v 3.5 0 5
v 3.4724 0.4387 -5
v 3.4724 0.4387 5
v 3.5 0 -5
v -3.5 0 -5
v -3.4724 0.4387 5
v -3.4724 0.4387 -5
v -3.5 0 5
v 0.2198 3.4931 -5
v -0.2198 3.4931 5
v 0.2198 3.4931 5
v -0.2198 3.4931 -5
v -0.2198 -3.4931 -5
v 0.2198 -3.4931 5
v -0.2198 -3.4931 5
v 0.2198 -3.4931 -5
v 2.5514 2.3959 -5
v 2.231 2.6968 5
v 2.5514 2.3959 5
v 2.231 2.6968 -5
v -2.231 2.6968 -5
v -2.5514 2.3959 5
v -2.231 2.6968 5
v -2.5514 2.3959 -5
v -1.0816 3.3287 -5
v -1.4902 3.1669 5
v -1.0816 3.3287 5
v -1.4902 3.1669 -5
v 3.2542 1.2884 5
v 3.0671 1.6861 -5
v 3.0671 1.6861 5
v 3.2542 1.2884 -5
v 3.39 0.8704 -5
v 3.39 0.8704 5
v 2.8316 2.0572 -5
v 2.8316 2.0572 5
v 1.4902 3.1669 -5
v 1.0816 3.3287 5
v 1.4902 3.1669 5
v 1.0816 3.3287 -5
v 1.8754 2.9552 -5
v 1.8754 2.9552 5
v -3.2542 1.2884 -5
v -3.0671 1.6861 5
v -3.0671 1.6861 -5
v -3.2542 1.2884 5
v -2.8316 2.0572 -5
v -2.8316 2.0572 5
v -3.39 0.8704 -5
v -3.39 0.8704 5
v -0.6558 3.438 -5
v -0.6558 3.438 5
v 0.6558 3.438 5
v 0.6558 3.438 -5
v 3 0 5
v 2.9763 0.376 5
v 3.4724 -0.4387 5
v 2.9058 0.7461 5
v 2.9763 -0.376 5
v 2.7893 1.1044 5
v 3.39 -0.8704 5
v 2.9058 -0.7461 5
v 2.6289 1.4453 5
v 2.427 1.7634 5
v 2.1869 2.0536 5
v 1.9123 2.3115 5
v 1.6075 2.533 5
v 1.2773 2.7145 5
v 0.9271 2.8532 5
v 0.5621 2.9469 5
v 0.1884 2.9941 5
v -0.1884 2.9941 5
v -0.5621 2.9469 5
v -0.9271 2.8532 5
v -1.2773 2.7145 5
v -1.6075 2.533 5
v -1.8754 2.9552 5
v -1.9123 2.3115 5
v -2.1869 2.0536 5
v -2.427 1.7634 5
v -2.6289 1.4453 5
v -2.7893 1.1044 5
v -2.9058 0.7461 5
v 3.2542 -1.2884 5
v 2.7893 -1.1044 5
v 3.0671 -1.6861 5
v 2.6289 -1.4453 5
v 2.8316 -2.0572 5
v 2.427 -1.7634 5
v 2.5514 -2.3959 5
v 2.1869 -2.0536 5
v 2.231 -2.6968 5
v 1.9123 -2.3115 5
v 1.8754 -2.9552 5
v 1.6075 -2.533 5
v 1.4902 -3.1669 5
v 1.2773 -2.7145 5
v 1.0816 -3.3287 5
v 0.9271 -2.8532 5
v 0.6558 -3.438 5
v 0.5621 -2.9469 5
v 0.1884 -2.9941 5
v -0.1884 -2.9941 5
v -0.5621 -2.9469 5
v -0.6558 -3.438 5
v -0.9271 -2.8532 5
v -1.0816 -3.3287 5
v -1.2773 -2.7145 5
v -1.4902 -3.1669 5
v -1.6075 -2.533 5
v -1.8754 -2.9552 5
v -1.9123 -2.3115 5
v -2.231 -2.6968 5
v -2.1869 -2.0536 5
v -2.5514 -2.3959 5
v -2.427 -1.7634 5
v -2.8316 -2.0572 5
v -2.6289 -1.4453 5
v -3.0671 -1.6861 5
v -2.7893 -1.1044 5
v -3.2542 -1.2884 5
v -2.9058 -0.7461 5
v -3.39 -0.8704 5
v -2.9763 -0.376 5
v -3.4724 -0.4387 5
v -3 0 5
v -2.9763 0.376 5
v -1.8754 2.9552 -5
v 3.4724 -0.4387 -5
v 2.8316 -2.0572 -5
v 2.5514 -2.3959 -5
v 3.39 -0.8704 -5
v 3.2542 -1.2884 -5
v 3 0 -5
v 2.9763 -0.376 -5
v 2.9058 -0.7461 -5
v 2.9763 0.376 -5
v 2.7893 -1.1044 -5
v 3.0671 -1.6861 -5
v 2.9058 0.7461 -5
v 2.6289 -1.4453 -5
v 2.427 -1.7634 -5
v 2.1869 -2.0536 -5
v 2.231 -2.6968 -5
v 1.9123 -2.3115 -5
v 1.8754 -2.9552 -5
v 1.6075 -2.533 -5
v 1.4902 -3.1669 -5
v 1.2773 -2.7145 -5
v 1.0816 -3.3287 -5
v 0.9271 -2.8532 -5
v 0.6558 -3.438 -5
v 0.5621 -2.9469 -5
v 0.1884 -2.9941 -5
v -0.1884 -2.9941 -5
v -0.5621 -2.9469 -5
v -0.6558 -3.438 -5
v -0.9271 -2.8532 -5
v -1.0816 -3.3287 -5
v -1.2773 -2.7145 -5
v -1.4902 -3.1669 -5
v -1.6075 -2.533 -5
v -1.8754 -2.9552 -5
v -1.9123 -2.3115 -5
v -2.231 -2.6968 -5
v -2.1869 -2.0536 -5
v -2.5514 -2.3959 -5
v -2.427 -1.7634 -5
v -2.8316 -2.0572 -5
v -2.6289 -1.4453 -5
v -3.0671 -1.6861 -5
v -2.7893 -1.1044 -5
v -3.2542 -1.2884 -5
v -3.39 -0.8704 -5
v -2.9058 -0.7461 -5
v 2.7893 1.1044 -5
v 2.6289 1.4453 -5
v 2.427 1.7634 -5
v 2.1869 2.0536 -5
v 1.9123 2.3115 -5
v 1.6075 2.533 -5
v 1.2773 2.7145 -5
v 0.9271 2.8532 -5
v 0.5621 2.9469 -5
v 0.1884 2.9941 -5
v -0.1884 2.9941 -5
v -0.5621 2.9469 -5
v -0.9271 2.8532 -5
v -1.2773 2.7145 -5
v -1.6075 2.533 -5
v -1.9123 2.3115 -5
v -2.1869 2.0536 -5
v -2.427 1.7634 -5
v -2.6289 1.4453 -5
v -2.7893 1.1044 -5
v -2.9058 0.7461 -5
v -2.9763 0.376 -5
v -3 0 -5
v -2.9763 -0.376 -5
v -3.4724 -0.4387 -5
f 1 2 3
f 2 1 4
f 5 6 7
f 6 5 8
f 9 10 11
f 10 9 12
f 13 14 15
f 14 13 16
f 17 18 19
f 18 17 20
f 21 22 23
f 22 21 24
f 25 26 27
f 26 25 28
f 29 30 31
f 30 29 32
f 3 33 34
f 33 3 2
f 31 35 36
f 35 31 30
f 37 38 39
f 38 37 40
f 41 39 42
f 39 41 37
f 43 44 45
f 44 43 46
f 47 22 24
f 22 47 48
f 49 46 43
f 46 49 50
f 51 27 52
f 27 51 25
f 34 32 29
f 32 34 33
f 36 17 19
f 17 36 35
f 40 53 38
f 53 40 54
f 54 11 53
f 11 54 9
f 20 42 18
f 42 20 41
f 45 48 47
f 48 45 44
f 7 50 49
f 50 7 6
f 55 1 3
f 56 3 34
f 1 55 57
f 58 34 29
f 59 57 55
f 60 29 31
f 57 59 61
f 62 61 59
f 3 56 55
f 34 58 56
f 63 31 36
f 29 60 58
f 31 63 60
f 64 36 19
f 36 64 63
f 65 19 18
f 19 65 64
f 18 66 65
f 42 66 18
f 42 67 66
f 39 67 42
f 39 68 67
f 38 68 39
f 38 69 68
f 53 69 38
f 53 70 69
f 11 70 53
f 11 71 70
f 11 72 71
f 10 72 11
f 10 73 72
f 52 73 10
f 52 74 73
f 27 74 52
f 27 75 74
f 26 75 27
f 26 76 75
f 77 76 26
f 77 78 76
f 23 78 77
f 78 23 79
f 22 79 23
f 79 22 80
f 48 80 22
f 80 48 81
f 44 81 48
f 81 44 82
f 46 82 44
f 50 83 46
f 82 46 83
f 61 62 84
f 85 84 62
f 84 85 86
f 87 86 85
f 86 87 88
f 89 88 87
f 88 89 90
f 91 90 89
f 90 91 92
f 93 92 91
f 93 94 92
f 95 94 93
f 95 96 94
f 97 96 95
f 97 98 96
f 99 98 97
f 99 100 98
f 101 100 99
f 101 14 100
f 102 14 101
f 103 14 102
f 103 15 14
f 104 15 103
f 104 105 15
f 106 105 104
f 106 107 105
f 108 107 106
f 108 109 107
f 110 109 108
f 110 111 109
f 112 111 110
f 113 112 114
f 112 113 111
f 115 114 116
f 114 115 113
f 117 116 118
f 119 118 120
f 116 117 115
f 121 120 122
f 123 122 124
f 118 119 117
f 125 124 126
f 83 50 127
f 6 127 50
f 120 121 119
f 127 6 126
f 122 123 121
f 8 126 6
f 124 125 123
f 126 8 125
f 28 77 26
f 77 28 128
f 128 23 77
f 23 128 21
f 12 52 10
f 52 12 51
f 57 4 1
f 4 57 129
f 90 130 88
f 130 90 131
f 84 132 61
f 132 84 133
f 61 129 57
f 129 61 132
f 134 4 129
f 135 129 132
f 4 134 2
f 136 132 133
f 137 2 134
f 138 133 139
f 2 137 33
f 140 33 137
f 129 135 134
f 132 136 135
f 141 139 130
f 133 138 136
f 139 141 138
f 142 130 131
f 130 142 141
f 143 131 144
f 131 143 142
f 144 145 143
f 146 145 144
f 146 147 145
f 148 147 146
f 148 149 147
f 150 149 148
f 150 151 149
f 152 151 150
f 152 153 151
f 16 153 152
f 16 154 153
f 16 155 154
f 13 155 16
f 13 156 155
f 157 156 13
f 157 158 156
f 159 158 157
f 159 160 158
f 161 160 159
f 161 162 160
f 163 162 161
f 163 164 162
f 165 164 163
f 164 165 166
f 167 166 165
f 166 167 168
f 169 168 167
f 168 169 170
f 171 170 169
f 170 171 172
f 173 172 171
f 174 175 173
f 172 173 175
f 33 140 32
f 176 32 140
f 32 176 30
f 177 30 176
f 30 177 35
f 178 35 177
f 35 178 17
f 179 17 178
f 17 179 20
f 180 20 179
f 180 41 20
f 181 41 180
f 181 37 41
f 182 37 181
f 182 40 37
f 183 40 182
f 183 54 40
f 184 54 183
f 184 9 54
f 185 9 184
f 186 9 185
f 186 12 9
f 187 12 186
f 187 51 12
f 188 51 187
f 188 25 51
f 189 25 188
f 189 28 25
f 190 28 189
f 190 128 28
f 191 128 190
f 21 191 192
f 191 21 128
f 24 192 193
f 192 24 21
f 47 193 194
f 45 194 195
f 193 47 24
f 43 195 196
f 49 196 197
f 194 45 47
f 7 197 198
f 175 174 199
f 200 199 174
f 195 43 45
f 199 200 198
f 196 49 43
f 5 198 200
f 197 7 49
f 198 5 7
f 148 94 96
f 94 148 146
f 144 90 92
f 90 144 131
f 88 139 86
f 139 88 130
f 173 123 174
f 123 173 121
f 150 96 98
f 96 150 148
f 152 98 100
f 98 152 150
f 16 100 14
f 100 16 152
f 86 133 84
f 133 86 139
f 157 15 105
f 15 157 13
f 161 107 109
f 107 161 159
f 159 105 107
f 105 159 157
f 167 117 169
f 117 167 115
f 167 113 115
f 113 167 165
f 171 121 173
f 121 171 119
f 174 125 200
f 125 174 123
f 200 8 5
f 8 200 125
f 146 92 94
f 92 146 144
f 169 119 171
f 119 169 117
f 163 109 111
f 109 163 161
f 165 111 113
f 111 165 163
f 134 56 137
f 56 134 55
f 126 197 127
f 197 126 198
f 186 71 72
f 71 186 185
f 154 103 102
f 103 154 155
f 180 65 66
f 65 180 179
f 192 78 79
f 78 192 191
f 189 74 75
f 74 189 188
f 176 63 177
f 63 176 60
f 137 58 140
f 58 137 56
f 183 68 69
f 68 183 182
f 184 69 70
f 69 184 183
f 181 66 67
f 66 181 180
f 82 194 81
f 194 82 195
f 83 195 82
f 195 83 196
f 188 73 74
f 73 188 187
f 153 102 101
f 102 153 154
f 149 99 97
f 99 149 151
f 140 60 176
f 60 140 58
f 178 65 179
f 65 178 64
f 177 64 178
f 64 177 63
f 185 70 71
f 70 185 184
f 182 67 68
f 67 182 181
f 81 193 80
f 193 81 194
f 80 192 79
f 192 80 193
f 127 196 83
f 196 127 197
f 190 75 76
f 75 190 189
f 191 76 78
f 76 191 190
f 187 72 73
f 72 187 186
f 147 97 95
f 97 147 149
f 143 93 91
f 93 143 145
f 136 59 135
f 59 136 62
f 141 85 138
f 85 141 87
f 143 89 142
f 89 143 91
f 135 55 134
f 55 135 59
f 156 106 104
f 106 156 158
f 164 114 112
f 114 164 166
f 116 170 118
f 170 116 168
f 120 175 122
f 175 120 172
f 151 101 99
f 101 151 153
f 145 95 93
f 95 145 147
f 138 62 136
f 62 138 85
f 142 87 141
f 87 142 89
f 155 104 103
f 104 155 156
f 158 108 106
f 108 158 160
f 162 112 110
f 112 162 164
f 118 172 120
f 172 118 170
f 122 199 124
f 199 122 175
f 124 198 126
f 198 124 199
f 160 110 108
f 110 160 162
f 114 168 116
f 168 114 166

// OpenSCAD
$fn = 50;


difference() {
	union() {
		translate(v = [0, 0, -5.0000000000]) {
			cylinder(h = 10, r = 3.5000000000);
		}
	}
	union() {
		translate(v = [0, 0, -100.0000000000]) {
			cylinder(h = 200, r = 3);
		}
	}
}
